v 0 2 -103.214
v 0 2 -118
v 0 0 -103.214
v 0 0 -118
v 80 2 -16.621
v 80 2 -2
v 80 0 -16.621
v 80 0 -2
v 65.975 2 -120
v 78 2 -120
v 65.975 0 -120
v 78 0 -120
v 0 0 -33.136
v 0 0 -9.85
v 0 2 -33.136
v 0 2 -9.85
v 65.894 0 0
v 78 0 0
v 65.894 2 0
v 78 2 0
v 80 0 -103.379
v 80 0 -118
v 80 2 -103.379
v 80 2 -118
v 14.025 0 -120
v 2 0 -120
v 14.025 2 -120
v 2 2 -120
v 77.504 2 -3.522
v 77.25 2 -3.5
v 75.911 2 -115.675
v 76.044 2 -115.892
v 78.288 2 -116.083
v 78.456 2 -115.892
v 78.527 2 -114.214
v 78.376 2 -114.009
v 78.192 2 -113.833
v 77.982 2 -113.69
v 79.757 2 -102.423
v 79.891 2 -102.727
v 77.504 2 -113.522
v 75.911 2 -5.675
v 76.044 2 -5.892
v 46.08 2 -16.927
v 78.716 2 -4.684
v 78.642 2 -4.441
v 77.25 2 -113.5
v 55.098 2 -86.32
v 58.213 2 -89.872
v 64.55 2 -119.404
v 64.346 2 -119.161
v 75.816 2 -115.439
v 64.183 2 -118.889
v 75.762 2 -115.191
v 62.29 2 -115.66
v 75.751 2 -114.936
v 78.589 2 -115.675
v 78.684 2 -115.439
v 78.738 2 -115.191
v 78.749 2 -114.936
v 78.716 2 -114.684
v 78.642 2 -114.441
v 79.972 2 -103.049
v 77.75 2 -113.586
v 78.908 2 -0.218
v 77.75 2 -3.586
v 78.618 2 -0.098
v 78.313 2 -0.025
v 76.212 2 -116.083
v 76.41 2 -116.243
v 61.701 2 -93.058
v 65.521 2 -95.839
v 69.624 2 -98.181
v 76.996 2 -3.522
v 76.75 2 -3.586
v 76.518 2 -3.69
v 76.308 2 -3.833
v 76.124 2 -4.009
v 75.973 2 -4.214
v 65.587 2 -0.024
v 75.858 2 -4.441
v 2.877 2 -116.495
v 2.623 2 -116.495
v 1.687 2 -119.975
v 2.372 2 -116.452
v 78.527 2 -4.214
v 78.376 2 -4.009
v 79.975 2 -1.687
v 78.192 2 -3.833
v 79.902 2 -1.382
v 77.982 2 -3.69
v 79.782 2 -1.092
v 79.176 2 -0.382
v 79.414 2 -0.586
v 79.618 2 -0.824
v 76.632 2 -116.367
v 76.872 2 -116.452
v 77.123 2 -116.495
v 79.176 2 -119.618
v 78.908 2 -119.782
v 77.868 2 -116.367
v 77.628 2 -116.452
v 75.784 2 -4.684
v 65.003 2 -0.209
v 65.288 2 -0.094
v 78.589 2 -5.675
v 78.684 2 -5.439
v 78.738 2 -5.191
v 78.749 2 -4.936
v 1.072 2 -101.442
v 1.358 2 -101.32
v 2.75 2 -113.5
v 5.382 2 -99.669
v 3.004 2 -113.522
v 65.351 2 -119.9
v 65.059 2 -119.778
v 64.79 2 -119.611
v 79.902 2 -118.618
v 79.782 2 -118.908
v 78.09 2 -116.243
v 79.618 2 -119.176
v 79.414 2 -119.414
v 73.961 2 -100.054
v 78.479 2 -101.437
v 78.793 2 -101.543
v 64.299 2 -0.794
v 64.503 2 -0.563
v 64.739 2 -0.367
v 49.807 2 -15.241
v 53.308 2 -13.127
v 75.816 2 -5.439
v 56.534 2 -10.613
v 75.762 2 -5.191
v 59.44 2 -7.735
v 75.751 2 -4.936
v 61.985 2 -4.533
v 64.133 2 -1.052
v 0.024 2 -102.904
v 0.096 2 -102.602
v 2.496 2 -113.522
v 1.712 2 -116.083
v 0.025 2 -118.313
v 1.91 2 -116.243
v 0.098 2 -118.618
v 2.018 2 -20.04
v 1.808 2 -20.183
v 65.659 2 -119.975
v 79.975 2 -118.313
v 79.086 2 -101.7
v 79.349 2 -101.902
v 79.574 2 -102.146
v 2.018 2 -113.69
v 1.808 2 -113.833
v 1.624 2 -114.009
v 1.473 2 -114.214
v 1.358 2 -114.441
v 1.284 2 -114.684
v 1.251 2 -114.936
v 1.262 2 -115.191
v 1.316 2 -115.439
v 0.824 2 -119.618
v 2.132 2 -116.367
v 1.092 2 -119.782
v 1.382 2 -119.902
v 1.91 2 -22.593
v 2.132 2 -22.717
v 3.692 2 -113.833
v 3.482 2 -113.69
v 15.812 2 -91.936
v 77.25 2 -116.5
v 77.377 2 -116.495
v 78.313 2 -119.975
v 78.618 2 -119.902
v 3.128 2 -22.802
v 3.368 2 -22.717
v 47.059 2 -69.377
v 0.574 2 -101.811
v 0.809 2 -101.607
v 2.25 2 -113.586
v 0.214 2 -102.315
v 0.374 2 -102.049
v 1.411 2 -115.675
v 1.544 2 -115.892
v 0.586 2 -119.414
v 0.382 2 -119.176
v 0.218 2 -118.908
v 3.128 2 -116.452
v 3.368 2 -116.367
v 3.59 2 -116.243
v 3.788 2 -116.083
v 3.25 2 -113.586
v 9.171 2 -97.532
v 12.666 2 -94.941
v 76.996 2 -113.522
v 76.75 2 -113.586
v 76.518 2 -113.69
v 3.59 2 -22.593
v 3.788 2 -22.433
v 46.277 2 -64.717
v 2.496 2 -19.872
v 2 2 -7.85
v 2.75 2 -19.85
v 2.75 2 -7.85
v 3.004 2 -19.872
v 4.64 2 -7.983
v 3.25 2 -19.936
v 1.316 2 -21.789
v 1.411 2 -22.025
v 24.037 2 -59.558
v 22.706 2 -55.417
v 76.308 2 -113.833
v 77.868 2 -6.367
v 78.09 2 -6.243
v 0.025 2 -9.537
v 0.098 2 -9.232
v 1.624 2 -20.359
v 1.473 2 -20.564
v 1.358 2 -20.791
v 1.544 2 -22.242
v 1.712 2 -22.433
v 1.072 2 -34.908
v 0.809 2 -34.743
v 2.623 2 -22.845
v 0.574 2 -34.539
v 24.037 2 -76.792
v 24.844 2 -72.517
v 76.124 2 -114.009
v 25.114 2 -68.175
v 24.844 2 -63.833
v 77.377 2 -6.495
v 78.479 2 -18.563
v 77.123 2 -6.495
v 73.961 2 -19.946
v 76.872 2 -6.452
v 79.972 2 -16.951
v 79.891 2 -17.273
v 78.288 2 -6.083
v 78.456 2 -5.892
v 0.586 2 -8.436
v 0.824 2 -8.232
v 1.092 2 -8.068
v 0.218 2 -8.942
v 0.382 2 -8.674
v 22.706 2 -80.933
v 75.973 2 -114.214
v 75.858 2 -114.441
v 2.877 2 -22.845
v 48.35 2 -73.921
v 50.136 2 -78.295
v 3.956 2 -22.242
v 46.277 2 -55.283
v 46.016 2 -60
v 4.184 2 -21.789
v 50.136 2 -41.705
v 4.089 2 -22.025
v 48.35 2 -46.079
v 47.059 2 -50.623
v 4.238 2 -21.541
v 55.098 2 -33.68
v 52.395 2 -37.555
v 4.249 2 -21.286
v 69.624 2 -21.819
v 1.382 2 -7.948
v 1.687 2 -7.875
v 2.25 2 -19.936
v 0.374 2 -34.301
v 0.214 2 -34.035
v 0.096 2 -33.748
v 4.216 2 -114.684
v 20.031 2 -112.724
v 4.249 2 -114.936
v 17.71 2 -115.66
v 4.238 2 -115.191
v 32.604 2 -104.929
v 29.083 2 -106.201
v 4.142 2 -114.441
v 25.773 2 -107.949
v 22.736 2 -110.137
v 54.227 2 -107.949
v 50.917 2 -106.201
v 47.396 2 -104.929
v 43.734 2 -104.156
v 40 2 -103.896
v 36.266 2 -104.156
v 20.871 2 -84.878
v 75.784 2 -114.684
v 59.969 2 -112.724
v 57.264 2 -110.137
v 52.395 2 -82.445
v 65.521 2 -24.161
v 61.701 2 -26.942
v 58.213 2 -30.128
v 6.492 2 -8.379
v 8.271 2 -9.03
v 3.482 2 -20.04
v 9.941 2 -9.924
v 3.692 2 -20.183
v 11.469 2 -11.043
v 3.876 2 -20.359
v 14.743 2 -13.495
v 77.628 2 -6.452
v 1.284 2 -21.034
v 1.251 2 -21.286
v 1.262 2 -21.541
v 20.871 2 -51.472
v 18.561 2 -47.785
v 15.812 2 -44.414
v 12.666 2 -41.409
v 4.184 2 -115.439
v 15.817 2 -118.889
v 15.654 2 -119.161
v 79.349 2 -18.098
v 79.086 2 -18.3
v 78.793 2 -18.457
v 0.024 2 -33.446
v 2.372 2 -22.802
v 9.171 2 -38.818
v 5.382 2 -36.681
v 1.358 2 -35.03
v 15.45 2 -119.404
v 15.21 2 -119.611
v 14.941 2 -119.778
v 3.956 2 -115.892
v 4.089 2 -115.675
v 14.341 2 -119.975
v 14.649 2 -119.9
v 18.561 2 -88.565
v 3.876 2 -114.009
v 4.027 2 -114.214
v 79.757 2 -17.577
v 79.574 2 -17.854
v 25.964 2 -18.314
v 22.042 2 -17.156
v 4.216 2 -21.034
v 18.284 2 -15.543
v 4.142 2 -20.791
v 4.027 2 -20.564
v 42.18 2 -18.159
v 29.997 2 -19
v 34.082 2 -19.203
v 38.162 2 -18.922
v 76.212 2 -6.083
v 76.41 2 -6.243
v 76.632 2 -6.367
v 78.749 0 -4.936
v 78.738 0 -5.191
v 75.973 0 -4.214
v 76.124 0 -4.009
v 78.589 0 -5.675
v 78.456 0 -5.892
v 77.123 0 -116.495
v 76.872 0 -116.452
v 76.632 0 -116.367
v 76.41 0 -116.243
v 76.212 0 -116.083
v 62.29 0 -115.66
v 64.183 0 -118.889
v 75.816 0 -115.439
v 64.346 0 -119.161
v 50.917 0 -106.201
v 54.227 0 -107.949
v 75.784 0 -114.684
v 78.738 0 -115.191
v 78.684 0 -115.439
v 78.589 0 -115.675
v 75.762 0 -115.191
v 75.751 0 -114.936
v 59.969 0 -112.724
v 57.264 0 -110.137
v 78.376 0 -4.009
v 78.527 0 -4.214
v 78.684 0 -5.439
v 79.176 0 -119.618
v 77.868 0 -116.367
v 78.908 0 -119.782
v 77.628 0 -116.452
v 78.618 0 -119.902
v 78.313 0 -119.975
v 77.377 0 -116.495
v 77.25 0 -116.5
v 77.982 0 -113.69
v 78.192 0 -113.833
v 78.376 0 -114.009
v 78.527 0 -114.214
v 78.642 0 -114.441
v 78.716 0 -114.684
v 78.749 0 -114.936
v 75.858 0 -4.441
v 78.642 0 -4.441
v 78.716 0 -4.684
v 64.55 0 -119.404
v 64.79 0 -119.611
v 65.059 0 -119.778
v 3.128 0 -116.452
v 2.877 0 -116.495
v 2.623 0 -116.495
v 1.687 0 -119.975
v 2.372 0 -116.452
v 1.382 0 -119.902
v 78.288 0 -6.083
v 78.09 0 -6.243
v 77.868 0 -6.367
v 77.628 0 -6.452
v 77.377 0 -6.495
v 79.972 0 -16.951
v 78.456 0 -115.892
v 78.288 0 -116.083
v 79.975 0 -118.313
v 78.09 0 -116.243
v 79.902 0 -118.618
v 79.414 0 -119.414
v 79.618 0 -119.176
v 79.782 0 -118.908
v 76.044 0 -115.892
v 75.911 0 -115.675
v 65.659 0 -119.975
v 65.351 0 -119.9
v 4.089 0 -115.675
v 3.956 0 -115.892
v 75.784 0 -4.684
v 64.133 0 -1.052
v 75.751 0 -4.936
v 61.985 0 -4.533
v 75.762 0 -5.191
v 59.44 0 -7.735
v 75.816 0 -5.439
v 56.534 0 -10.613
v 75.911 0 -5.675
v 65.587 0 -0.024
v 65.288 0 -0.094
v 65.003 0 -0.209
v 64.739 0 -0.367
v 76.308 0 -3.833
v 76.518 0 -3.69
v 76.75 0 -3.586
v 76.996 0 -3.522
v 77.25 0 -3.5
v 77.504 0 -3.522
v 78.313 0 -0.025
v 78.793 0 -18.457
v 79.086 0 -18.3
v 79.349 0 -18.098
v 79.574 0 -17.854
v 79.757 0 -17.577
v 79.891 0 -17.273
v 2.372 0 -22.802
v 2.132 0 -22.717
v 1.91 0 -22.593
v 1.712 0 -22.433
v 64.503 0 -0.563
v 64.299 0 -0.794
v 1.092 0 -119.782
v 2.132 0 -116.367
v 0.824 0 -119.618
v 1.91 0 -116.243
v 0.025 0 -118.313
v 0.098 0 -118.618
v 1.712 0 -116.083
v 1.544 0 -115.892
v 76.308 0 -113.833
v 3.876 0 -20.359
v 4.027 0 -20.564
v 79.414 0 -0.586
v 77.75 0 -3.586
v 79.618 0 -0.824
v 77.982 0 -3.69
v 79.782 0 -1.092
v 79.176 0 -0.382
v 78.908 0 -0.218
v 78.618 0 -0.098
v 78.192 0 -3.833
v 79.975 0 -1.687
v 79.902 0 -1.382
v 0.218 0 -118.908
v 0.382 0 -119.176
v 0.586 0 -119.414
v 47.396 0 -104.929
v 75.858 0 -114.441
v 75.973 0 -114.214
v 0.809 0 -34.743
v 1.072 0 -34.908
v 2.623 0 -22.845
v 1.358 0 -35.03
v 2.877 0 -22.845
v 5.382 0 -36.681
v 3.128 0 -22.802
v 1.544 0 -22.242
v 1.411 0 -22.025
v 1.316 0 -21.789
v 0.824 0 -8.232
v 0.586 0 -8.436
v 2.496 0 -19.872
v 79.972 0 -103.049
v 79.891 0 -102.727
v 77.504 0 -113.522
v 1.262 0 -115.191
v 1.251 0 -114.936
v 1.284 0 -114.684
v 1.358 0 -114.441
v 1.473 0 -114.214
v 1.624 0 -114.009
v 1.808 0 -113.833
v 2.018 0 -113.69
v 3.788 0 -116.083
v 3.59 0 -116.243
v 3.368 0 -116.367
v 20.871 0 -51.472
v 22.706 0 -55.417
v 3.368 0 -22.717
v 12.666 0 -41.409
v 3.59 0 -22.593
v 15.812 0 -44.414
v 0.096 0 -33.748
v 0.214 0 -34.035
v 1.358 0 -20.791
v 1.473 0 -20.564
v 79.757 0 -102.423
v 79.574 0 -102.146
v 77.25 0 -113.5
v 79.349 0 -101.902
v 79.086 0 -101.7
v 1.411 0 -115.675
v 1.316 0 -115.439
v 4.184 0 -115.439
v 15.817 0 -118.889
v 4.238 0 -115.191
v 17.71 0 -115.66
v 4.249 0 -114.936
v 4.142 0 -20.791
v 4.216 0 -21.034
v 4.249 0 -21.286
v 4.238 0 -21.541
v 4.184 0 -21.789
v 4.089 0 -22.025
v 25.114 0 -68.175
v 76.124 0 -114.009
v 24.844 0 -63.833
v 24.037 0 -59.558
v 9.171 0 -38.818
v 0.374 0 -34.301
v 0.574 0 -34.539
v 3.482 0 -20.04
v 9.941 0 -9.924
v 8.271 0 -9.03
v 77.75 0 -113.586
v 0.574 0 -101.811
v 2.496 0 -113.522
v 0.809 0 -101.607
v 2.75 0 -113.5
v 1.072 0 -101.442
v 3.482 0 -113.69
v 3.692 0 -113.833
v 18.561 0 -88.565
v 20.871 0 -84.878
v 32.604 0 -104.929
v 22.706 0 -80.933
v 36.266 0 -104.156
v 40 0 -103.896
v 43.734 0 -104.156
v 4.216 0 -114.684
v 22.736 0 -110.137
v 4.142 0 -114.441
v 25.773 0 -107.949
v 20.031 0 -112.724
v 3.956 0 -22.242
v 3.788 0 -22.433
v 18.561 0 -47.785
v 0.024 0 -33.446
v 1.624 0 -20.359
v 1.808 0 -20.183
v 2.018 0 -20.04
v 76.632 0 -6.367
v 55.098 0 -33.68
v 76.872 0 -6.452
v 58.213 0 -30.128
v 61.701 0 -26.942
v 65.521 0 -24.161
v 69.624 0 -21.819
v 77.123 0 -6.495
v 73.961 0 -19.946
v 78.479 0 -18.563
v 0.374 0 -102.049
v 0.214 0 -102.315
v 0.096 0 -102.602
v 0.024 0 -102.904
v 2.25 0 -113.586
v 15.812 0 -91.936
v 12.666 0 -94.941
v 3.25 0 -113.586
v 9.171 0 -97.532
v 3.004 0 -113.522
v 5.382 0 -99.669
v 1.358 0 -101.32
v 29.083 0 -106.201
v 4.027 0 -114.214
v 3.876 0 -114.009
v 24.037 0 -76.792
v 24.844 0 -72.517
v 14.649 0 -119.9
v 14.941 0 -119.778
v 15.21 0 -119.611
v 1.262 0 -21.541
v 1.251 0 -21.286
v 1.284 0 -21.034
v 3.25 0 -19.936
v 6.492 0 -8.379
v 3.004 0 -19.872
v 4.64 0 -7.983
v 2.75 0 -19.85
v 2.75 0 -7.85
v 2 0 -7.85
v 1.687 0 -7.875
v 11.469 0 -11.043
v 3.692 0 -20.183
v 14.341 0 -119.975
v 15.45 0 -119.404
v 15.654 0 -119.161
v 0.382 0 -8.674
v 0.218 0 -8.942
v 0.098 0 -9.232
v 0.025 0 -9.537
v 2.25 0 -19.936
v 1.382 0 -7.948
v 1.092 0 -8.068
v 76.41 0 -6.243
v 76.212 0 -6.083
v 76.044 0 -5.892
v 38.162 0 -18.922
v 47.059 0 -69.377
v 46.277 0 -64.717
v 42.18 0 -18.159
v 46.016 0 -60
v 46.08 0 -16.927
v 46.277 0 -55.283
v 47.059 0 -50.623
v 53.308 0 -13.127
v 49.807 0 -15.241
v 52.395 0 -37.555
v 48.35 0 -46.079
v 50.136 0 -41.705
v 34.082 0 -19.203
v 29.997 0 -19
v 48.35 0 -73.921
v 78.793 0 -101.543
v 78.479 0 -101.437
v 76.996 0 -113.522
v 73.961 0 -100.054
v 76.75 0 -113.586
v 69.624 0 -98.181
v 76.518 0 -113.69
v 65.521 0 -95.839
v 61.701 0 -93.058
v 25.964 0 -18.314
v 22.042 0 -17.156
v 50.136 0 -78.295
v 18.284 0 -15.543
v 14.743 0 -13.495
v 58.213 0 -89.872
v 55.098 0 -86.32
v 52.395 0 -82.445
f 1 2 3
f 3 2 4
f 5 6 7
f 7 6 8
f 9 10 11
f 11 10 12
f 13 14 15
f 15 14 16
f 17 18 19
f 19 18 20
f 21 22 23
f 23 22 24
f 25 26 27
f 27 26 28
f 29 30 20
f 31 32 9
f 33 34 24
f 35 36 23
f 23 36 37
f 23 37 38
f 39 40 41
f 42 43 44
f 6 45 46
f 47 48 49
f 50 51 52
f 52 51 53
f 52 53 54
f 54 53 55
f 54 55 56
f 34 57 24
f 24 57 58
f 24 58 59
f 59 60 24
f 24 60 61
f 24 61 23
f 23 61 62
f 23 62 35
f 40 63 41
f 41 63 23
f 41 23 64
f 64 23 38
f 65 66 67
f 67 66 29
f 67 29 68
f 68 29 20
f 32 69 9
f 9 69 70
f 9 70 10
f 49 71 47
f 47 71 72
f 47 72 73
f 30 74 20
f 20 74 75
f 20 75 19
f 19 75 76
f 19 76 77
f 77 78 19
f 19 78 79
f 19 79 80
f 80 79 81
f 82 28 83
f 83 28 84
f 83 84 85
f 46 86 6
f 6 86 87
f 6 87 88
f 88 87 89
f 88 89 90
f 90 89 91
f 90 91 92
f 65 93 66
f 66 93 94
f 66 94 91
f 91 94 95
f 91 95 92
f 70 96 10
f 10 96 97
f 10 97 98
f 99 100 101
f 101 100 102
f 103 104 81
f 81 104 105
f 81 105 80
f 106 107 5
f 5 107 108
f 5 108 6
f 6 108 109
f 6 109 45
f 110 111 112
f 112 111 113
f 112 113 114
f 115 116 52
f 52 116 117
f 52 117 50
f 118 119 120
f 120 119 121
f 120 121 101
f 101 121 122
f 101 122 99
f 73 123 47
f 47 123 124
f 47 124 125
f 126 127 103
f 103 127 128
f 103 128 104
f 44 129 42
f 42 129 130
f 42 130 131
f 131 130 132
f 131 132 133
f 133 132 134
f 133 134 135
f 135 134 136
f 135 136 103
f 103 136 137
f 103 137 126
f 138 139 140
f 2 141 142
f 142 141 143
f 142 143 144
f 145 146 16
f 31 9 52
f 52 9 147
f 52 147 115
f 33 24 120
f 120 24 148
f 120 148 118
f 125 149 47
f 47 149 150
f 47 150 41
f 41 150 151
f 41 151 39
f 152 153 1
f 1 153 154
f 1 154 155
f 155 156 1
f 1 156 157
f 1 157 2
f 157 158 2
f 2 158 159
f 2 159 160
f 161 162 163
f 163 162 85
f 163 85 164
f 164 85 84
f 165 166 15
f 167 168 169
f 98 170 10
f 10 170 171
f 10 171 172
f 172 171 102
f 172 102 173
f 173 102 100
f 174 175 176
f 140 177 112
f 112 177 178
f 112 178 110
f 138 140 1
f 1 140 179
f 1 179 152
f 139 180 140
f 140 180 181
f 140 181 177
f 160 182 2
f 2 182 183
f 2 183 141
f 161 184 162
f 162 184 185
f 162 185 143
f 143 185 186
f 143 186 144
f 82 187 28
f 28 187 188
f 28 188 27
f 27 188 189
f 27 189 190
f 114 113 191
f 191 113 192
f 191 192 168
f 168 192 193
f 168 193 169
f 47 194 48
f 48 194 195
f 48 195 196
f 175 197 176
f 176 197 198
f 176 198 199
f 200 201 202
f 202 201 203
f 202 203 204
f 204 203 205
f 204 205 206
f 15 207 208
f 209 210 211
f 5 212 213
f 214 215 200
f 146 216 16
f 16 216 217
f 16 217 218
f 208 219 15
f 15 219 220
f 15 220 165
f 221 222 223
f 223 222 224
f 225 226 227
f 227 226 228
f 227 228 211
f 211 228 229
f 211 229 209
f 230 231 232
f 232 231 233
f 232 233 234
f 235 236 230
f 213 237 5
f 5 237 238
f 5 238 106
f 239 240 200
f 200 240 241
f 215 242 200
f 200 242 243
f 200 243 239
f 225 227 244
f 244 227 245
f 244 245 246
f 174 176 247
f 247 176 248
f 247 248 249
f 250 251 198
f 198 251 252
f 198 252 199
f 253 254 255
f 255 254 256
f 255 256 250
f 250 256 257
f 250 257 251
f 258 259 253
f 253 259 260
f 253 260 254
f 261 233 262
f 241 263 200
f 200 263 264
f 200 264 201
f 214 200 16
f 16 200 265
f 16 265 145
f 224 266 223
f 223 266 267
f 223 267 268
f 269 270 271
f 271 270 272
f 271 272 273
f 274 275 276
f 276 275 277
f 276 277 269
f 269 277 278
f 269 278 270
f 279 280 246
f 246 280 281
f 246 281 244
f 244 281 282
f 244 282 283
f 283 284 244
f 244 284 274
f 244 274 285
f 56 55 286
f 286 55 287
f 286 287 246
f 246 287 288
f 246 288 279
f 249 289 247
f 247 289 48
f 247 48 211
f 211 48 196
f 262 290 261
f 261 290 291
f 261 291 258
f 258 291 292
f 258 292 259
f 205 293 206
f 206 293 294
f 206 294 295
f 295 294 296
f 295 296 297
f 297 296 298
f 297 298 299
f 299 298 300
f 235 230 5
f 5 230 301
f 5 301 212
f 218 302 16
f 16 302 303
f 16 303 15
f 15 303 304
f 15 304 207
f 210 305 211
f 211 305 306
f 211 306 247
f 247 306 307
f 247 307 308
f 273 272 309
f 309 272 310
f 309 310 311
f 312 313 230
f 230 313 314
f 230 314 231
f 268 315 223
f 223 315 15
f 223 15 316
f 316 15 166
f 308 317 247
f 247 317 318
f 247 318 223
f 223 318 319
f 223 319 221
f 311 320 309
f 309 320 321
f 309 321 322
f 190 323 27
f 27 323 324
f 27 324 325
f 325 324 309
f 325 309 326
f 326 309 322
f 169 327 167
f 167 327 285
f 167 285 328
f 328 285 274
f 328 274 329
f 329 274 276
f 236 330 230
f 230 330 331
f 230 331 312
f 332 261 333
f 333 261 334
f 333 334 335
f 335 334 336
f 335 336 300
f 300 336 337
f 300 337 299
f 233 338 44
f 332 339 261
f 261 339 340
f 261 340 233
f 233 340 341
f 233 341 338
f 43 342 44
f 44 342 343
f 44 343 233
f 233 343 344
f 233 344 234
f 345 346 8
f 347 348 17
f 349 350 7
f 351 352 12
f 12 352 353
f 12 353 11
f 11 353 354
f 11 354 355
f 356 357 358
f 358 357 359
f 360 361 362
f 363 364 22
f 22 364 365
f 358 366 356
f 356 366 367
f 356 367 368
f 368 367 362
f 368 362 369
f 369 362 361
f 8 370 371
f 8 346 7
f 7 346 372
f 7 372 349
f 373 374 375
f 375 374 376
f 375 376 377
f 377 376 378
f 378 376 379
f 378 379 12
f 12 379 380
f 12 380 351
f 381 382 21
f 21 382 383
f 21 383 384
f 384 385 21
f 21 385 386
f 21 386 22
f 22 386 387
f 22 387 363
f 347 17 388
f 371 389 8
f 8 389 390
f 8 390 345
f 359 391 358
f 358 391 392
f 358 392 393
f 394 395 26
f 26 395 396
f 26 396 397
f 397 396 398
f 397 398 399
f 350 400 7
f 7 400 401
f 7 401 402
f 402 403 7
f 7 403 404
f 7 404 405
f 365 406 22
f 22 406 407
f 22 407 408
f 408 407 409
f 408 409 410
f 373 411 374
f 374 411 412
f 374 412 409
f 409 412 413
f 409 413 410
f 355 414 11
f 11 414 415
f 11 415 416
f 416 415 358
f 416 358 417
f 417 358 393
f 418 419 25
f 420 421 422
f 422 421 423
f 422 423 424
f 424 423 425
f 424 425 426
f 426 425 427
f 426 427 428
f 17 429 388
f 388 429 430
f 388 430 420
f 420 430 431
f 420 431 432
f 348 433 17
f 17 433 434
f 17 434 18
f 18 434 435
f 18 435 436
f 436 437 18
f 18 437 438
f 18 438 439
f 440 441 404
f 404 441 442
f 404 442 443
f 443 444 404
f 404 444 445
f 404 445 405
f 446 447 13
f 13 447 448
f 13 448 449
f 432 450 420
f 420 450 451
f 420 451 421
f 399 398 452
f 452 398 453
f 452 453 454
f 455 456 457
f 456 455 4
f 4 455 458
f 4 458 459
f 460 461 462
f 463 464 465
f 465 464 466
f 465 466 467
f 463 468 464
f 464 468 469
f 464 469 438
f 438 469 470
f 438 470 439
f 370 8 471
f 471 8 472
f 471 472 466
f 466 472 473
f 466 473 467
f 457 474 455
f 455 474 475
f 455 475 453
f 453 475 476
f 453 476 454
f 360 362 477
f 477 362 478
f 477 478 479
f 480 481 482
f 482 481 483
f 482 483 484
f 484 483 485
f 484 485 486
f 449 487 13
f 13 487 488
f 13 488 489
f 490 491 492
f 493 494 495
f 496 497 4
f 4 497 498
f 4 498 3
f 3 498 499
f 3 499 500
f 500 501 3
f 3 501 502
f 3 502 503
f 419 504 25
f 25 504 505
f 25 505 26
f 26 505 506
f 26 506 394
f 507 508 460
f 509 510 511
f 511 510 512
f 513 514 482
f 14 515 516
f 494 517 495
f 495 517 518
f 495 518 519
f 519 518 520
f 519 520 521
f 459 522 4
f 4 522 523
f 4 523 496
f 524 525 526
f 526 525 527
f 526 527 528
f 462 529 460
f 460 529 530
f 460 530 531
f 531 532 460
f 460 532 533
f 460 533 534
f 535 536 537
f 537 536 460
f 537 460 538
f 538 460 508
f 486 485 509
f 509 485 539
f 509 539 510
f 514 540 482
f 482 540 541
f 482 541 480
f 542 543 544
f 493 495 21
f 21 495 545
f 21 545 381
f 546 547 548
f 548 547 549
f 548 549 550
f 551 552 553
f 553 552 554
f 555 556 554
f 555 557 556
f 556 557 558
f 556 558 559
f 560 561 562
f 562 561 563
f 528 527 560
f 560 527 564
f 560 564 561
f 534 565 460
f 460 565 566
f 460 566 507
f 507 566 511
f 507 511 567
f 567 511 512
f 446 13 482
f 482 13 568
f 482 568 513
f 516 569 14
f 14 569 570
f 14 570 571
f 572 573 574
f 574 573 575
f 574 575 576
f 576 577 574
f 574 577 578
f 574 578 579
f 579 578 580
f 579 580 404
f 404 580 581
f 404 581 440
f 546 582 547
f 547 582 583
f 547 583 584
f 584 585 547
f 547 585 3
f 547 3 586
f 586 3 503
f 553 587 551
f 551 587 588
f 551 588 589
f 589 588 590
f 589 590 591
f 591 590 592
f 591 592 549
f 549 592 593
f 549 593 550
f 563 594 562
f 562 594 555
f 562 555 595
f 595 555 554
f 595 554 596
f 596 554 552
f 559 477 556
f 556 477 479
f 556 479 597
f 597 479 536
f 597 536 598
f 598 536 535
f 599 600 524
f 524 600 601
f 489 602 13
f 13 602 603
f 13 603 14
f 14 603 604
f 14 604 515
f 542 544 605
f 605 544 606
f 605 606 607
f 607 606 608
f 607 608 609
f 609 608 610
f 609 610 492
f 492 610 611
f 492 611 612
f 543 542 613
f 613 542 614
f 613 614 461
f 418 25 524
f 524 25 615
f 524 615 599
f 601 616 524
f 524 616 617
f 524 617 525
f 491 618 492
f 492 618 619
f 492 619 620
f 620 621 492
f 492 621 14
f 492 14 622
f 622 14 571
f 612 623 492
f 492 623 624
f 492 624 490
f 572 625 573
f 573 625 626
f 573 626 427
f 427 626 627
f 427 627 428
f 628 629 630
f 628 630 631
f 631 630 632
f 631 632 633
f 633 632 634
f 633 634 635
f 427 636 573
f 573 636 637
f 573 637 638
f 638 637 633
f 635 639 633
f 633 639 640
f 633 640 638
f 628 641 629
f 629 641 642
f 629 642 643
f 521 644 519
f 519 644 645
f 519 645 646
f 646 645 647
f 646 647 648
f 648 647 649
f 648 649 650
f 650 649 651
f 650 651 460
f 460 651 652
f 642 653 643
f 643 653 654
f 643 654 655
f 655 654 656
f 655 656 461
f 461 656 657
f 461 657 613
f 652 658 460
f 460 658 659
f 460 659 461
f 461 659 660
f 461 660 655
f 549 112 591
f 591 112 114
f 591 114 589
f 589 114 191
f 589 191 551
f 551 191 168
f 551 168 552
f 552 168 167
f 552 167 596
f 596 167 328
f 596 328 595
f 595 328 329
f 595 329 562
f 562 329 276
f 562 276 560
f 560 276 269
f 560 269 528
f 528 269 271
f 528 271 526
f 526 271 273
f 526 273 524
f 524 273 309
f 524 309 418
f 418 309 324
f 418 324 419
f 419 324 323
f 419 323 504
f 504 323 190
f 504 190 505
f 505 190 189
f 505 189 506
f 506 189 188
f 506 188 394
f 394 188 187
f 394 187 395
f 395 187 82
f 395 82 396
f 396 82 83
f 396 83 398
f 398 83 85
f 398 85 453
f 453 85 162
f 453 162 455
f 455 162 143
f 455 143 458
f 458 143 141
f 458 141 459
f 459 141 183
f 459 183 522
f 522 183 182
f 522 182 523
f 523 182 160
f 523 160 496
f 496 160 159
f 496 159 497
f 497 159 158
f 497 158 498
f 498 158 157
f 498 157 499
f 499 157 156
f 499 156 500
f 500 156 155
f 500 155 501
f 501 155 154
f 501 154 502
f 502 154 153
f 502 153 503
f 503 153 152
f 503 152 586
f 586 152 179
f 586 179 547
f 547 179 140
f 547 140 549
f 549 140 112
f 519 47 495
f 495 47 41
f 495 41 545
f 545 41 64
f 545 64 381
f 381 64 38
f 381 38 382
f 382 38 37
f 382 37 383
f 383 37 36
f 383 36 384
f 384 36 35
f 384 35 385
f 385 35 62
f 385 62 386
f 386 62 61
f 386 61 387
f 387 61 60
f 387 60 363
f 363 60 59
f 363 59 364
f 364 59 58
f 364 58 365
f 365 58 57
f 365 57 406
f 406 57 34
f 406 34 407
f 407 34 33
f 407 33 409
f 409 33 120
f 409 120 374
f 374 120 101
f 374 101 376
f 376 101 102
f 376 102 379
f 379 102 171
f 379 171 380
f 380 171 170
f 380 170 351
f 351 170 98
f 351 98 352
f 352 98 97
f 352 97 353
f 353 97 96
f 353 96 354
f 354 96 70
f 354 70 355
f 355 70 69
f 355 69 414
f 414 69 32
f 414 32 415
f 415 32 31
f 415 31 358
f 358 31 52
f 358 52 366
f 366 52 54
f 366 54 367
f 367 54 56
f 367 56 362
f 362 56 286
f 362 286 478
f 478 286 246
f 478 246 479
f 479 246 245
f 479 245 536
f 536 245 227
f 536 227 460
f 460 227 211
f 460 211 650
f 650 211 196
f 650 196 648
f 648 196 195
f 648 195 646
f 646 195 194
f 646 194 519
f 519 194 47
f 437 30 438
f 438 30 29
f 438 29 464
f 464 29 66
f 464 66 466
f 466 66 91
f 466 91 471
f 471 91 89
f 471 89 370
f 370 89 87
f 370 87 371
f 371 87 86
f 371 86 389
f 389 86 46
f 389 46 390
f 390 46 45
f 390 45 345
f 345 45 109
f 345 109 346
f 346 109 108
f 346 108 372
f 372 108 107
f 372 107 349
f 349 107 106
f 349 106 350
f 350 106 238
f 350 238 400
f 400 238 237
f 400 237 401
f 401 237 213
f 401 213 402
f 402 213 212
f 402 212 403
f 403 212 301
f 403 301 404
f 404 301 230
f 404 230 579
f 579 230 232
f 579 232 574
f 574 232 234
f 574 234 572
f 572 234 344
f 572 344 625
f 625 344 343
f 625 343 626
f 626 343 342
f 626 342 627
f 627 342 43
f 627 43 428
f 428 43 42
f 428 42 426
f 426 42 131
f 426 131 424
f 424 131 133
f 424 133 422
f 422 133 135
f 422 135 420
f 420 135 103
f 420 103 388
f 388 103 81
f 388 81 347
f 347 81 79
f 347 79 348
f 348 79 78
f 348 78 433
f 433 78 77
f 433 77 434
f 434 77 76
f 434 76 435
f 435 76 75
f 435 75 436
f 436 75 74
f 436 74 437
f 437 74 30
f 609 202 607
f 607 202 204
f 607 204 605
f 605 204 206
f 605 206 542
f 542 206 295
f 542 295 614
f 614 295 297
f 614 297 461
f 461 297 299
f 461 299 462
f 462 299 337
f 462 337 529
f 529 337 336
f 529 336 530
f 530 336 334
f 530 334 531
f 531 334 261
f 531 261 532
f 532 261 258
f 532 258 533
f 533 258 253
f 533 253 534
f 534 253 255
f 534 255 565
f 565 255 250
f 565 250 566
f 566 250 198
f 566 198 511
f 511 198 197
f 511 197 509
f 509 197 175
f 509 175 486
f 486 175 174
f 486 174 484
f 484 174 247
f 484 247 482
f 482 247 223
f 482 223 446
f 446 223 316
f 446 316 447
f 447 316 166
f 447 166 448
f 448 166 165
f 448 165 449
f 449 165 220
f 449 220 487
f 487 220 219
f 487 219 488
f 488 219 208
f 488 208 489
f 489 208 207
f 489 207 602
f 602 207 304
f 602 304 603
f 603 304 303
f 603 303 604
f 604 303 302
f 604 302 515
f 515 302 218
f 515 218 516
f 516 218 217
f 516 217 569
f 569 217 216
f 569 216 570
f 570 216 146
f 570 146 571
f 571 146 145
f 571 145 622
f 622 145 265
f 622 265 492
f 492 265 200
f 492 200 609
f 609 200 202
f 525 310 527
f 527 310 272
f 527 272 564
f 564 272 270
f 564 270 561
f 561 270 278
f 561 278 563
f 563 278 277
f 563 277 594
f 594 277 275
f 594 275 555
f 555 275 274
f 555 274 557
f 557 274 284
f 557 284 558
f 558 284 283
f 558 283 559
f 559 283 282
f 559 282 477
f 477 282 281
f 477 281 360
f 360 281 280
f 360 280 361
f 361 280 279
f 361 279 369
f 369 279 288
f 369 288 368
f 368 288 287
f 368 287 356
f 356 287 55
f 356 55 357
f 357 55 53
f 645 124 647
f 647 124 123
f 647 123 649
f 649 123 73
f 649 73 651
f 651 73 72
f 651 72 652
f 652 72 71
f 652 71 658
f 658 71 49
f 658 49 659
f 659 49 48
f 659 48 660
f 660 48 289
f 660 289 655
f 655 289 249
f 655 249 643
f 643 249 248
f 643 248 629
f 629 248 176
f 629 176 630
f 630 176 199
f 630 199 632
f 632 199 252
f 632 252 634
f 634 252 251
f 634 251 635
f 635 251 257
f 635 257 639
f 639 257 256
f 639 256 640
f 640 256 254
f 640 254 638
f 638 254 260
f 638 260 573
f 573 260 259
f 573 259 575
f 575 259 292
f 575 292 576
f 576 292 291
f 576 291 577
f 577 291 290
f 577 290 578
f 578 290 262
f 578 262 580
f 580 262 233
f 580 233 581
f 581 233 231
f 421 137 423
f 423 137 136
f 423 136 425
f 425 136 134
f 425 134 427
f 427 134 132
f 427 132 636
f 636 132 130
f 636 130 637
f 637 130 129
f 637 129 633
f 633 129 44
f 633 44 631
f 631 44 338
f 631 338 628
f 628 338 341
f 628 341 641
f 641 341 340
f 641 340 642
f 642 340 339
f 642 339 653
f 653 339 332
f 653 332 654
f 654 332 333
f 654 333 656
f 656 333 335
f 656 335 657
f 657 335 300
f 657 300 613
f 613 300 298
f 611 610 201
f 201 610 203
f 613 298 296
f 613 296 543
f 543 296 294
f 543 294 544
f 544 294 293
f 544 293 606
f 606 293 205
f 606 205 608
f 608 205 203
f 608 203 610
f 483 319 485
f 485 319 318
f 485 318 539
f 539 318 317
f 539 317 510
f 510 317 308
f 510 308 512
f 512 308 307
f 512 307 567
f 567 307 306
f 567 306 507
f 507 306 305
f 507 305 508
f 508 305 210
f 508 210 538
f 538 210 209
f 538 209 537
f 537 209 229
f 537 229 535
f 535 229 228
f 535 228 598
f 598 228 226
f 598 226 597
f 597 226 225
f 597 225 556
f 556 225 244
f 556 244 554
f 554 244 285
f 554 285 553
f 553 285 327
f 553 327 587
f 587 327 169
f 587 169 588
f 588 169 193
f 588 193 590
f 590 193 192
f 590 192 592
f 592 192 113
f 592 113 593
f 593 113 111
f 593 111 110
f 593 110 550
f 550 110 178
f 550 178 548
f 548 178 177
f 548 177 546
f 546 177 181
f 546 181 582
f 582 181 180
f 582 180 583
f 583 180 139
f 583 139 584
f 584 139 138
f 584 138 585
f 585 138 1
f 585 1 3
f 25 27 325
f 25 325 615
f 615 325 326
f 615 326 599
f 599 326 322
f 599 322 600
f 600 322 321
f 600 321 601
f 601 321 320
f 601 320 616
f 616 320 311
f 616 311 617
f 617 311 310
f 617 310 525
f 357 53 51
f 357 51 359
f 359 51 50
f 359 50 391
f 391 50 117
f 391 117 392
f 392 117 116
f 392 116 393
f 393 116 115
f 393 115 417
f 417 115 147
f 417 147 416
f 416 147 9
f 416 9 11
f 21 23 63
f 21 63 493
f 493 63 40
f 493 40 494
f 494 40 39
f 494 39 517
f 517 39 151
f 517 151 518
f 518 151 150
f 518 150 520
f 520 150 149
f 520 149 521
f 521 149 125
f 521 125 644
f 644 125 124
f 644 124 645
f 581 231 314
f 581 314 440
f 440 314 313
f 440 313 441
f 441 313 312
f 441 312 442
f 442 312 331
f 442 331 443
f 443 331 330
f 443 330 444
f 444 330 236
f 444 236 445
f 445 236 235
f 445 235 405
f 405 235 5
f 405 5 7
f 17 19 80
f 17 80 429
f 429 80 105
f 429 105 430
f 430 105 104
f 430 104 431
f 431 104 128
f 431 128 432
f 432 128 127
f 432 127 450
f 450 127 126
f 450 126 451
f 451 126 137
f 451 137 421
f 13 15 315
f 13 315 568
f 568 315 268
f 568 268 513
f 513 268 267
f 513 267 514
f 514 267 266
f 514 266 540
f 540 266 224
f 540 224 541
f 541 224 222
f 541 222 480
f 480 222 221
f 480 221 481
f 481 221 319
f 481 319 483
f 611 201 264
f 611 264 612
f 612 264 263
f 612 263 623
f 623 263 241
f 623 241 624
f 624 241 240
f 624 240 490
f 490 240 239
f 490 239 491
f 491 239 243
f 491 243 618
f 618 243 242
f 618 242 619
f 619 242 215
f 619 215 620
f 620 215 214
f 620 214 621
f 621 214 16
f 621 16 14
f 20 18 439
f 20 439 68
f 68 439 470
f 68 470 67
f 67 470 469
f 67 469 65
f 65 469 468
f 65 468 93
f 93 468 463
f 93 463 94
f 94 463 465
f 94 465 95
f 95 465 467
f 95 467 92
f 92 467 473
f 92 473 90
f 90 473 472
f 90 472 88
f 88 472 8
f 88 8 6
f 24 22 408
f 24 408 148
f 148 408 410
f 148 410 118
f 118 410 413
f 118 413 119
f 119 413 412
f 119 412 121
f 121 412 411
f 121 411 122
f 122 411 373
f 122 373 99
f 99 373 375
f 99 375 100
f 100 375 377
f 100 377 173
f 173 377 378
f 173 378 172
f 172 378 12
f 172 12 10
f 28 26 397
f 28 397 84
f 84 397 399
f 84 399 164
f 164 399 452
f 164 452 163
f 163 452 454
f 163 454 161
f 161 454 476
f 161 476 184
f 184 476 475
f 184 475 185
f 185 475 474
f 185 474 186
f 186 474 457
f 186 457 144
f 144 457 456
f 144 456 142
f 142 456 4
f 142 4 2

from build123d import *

# Parameters (mm, degrees)
SKETCH1_W           = 80
SKETCH1_H           = 120
BOSS_EXTRUDE1_DEPTH = 2
SKETCH2_R           = 1.5
CUT_EXTRUDE1_DEPTH  = 145.235917857
CUT_EXTRUDE2_DEPTH  = 145.235917857
FILLET1_R           = 2


with BuildPart() as part:
    # Sketch1 → Boss-Extrude1 (new body)
    with BuildSketch(Plane(origin=(0, 0, 0), x_dir=(1, 0, 0), z_dir=(0, 1, 0))):
        with Locations((40, 60)):
            Rectangle(SKETCH1_W, SKETCH1_H)
    extrude(amount=BOSS_EXTRUDE1_DEPTH)

    # Sketch2 → Cut-Extrude1 (cut, through all)
    with BuildSketch(Plane(origin=(0, 2, 0), x_dir=(1, 0, 0), z_dir=(0, 1, 0))):
        with Locations(Location((2.75, 115, 0), (0, 0, 270))):
            Circle(SKETCH2_R)
        with Locations(Location((77.25, 115, 0), (0, 0, 90))):
            Circle(SKETCH2_R)
        with Locations(Location((77.25, 5, 0), (0, 0, 270))):
            Circle(SKETCH2_R)
        with Locations(Location((2.75, 21.35, 0), (0, 0, 270))):
            Circle(SKETCH2_R)
    extrude(amount=-CUT_EXTRUDE1_DEPTH, mode=Mode.SUBTRACT)

    # Sketch3 → Cut-Extrude2 (cut, through all)
    with BuildSketch(Plane(origin=(0, 2, 0), x_dir=(1, 0, 0), z_dir=(0, 1, 0))):
        with BuildLine():
            Line((2.75, 128.5), (77.25, 128.5))
            ThreePointArc((77.25, 128.5), (69.809659383, 126.264605253), (64.833333333, 120.298715777))
            ThreePointArc((64.833333333, 120.298715777), (40, 103.896147332), (15.166666667, 120.298715777))
            ThreePointArc((15.166666667, 120.298715777), (10.190340617, 126.264605253), (2.75, 128.5))
        make_face()
        with BuildLine():
            Line((-10.75, 115), (-10.75, 21.35))
            ThreePointArc((-10.75, 21.35), (-7.967575093, 29.558750461), (-0.767246795, 34.383762887))
            ThreePointArc((-0.767246795, 34.383762887), (25.113965218, 68.175), (-0.767246795, 101.966237113))
            ThreePointArc((-0.767246795, 101.966237113), (-7.967575093, 106.791249539), (-10.75, 115))
        make_face()
        with BuildLine():
            Line((-10.75, 7.85), (-10.75, -8.5))
            Line((-10.75, -8.5), (77.25, -8.5))
            ThreePointArc((77.25, -8.5), (69.997734791, -6.386599551), (65.016127441, -0.708096198))
            ThreePointArc((65.016127441, -0.708096198), (41.147259356, 18.402573211), (11.469252441, 11.043466302))
            ThreePointArc((11.469252441, 11.043466302), (7.392832922, 8.673482242), (2.75, 7.85))
            Line((2.75, 7.85), (-10.75, 7.85))
        make_face()
        with BuildLine():
            Line((90.75, 5), (90.75, 115))
            ThreePointArc((90.75, 115), (87.723180033, 106.481637481), (80, 101.783060112))
            ThreePointArc((80, 101.783060112), (46.015741918, 60), (80, 18.216939888))
            ThreePointArc((80, 18.216939888), (87.723180033, 13.518362519), (90.75, 5))
        make_face()
    extrude(amount=-CUT_EXTRUDE2_DEPTH, mode=Mode.SUBTRACT)

    # Fillet1
    fillet1_edges = [part.edges().sort_by_distance(p)[0] for p in [
        (0, 1, -101.749786914),
        (0, 1, -34.600213086),
        (64.675872748, 1, 0),
        (0, 1, -7.85),
        (80, 1, -18.216939888),
        (80, 1, -101.783060112),
        (0, 1, -120),
        (80, 1, -120),
        (64.703723876, 1, -120),
        (80, 1, 0),
        (15.296276124, 1, -120),
    ]]
    fillet(fillet1_edges, radius=FILLET1_R)


solid = part.part
